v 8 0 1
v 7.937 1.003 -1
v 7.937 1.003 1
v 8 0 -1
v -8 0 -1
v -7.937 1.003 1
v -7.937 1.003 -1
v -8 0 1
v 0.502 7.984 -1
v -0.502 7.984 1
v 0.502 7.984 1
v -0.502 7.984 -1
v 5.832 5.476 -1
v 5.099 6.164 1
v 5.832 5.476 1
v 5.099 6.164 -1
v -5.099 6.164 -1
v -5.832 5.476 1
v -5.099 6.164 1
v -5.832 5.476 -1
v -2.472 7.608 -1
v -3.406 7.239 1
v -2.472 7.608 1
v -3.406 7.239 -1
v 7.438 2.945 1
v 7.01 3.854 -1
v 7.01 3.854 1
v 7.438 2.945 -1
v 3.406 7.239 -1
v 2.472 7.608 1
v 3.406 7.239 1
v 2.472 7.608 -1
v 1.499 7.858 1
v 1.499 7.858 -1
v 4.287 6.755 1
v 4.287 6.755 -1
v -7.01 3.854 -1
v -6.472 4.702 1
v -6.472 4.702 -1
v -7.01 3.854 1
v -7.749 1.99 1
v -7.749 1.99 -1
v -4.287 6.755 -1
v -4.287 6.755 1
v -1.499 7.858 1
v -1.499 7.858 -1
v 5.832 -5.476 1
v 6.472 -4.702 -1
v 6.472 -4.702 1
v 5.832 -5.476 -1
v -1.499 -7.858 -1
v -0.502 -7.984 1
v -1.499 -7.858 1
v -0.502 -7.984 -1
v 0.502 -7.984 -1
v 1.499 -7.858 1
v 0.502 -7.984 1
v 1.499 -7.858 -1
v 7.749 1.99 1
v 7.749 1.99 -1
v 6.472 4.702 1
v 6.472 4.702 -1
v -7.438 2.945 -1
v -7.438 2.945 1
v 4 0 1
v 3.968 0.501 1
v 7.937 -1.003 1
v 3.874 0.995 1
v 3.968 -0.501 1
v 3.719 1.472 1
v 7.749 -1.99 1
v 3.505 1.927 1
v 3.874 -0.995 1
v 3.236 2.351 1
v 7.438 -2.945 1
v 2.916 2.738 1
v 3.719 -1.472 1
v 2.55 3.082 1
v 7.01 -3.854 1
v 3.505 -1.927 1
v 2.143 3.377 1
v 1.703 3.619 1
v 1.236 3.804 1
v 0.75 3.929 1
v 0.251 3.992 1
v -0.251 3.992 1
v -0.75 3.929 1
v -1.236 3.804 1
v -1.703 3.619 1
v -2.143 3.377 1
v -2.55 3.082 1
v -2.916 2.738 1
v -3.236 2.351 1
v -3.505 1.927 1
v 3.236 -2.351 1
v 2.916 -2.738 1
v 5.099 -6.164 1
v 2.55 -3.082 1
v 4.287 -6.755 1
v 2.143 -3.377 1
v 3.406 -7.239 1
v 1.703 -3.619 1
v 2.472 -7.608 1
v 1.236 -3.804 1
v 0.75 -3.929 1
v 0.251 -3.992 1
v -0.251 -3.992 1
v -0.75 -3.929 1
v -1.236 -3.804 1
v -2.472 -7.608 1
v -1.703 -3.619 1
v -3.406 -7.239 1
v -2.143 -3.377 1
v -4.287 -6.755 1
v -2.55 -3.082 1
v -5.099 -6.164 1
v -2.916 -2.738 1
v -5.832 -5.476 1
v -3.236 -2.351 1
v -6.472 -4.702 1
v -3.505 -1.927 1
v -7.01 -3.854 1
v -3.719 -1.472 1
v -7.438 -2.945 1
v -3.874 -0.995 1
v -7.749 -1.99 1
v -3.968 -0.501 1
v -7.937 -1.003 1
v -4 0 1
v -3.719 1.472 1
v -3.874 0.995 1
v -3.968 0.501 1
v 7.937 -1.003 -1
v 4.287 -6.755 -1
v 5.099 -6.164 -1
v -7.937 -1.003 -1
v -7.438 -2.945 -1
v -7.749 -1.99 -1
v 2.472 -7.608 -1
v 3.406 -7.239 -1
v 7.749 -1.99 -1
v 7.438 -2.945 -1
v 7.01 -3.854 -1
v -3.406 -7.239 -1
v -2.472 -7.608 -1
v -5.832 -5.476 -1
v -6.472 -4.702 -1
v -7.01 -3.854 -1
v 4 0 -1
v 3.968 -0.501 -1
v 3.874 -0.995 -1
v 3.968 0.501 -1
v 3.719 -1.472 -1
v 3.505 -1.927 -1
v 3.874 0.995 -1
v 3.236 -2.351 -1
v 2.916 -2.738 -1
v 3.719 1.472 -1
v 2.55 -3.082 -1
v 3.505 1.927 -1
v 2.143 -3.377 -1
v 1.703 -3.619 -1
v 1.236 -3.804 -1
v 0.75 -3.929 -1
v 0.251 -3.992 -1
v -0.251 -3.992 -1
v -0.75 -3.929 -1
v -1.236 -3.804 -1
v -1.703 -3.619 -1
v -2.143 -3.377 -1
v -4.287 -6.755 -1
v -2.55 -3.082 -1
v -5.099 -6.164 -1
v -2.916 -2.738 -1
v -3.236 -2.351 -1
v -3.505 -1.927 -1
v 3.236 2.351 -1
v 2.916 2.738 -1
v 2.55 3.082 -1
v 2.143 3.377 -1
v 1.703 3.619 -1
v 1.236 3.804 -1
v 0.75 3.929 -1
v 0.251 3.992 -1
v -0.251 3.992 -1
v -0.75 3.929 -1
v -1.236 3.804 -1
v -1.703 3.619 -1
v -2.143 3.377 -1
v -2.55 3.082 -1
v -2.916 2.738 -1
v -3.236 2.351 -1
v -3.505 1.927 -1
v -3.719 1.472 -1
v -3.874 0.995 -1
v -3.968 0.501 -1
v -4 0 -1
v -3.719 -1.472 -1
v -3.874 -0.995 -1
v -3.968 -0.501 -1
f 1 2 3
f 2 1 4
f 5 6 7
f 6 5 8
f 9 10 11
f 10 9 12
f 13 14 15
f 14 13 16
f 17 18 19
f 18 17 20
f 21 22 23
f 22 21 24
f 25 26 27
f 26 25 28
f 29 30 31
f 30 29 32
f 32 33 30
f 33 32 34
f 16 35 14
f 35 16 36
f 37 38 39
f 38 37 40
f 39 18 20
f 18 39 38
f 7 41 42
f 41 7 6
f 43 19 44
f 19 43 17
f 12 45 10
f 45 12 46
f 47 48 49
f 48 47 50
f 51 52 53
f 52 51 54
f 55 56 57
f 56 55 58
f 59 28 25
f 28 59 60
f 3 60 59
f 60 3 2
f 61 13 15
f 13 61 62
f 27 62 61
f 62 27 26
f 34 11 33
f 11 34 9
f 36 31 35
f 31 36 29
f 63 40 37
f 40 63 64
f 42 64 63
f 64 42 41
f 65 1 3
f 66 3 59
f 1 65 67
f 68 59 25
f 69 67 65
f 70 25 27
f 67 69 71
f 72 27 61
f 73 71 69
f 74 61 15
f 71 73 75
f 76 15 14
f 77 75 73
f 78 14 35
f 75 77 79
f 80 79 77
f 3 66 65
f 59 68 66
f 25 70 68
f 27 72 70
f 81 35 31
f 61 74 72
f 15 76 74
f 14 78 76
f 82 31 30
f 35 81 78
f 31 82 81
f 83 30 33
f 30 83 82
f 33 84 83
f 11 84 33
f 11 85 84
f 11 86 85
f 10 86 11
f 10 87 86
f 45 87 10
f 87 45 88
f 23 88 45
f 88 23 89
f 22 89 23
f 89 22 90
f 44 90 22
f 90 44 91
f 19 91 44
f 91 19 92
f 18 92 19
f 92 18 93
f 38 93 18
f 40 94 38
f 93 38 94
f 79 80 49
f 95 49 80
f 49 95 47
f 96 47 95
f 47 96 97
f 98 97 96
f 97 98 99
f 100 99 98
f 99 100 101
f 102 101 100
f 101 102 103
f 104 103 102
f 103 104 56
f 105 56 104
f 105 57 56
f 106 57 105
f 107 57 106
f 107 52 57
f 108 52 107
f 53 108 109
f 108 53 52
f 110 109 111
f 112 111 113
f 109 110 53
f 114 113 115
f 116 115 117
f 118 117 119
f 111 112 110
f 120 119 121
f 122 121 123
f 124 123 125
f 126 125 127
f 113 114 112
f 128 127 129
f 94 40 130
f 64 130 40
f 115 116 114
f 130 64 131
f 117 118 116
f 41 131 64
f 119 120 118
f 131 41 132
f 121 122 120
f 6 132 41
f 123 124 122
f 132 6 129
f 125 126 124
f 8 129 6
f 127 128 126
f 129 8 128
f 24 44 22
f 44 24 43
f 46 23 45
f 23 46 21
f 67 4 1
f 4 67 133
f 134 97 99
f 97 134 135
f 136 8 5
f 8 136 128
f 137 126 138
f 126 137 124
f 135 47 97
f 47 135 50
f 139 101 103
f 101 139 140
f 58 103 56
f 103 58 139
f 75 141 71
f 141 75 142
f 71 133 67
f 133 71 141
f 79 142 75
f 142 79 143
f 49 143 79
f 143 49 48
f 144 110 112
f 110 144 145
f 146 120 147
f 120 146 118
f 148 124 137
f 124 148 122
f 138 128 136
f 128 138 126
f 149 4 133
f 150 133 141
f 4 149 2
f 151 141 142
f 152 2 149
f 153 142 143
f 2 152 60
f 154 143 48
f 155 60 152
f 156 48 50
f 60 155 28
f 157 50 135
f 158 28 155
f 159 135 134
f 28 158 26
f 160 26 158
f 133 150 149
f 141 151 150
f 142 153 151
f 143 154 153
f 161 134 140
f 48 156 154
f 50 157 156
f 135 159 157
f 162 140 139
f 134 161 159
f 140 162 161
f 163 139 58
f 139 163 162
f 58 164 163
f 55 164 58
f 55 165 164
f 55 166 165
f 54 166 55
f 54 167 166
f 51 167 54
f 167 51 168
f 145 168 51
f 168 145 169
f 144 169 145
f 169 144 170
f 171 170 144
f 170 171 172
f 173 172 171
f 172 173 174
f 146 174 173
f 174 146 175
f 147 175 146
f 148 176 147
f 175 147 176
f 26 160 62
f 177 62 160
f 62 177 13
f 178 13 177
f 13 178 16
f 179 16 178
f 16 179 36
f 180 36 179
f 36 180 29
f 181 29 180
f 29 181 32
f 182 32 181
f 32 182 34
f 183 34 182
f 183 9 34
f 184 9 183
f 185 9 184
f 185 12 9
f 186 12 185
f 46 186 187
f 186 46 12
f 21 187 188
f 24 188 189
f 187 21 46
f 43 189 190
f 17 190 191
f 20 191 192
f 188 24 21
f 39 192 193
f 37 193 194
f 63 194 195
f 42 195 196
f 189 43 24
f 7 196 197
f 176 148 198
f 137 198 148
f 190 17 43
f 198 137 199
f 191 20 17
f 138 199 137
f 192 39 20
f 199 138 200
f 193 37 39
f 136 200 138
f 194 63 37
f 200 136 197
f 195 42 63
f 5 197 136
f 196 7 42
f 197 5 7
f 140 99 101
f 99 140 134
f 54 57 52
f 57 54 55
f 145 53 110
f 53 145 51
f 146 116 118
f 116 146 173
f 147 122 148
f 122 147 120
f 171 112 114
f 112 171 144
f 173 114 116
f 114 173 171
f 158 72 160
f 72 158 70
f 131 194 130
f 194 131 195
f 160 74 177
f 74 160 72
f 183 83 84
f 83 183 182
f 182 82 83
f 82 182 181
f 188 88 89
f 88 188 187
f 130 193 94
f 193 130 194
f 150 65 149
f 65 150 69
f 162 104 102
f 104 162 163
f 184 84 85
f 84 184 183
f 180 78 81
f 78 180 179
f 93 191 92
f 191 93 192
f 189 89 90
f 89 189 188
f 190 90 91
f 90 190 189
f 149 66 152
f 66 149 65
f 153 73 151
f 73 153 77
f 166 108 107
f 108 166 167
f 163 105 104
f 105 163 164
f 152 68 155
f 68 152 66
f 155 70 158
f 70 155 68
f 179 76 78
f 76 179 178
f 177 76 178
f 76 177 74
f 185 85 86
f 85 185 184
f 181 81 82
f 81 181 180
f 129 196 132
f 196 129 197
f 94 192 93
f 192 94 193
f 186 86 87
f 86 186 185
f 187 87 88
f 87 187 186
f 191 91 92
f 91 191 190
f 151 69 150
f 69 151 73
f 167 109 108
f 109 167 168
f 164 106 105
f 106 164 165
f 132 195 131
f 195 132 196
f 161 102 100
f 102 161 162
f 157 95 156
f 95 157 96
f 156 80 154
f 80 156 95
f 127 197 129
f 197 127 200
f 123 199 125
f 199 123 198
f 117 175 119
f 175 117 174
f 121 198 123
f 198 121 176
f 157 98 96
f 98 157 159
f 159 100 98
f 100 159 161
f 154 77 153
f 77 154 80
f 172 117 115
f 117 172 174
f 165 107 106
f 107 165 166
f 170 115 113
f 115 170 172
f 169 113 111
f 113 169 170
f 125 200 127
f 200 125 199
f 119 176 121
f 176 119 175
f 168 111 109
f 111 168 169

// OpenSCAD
$fn = 50;


difference() {
	union() {
		translate(v = [0, 0, -1.0000000000]) {
			cylinder(h = 2, r = 8.0000000000);
		}
	}
	union() {
		translate(v = [0, 0, -100.0000000000]) {
			cylinder(h = 200, r = 4.0000000000);
		}
	}
}
